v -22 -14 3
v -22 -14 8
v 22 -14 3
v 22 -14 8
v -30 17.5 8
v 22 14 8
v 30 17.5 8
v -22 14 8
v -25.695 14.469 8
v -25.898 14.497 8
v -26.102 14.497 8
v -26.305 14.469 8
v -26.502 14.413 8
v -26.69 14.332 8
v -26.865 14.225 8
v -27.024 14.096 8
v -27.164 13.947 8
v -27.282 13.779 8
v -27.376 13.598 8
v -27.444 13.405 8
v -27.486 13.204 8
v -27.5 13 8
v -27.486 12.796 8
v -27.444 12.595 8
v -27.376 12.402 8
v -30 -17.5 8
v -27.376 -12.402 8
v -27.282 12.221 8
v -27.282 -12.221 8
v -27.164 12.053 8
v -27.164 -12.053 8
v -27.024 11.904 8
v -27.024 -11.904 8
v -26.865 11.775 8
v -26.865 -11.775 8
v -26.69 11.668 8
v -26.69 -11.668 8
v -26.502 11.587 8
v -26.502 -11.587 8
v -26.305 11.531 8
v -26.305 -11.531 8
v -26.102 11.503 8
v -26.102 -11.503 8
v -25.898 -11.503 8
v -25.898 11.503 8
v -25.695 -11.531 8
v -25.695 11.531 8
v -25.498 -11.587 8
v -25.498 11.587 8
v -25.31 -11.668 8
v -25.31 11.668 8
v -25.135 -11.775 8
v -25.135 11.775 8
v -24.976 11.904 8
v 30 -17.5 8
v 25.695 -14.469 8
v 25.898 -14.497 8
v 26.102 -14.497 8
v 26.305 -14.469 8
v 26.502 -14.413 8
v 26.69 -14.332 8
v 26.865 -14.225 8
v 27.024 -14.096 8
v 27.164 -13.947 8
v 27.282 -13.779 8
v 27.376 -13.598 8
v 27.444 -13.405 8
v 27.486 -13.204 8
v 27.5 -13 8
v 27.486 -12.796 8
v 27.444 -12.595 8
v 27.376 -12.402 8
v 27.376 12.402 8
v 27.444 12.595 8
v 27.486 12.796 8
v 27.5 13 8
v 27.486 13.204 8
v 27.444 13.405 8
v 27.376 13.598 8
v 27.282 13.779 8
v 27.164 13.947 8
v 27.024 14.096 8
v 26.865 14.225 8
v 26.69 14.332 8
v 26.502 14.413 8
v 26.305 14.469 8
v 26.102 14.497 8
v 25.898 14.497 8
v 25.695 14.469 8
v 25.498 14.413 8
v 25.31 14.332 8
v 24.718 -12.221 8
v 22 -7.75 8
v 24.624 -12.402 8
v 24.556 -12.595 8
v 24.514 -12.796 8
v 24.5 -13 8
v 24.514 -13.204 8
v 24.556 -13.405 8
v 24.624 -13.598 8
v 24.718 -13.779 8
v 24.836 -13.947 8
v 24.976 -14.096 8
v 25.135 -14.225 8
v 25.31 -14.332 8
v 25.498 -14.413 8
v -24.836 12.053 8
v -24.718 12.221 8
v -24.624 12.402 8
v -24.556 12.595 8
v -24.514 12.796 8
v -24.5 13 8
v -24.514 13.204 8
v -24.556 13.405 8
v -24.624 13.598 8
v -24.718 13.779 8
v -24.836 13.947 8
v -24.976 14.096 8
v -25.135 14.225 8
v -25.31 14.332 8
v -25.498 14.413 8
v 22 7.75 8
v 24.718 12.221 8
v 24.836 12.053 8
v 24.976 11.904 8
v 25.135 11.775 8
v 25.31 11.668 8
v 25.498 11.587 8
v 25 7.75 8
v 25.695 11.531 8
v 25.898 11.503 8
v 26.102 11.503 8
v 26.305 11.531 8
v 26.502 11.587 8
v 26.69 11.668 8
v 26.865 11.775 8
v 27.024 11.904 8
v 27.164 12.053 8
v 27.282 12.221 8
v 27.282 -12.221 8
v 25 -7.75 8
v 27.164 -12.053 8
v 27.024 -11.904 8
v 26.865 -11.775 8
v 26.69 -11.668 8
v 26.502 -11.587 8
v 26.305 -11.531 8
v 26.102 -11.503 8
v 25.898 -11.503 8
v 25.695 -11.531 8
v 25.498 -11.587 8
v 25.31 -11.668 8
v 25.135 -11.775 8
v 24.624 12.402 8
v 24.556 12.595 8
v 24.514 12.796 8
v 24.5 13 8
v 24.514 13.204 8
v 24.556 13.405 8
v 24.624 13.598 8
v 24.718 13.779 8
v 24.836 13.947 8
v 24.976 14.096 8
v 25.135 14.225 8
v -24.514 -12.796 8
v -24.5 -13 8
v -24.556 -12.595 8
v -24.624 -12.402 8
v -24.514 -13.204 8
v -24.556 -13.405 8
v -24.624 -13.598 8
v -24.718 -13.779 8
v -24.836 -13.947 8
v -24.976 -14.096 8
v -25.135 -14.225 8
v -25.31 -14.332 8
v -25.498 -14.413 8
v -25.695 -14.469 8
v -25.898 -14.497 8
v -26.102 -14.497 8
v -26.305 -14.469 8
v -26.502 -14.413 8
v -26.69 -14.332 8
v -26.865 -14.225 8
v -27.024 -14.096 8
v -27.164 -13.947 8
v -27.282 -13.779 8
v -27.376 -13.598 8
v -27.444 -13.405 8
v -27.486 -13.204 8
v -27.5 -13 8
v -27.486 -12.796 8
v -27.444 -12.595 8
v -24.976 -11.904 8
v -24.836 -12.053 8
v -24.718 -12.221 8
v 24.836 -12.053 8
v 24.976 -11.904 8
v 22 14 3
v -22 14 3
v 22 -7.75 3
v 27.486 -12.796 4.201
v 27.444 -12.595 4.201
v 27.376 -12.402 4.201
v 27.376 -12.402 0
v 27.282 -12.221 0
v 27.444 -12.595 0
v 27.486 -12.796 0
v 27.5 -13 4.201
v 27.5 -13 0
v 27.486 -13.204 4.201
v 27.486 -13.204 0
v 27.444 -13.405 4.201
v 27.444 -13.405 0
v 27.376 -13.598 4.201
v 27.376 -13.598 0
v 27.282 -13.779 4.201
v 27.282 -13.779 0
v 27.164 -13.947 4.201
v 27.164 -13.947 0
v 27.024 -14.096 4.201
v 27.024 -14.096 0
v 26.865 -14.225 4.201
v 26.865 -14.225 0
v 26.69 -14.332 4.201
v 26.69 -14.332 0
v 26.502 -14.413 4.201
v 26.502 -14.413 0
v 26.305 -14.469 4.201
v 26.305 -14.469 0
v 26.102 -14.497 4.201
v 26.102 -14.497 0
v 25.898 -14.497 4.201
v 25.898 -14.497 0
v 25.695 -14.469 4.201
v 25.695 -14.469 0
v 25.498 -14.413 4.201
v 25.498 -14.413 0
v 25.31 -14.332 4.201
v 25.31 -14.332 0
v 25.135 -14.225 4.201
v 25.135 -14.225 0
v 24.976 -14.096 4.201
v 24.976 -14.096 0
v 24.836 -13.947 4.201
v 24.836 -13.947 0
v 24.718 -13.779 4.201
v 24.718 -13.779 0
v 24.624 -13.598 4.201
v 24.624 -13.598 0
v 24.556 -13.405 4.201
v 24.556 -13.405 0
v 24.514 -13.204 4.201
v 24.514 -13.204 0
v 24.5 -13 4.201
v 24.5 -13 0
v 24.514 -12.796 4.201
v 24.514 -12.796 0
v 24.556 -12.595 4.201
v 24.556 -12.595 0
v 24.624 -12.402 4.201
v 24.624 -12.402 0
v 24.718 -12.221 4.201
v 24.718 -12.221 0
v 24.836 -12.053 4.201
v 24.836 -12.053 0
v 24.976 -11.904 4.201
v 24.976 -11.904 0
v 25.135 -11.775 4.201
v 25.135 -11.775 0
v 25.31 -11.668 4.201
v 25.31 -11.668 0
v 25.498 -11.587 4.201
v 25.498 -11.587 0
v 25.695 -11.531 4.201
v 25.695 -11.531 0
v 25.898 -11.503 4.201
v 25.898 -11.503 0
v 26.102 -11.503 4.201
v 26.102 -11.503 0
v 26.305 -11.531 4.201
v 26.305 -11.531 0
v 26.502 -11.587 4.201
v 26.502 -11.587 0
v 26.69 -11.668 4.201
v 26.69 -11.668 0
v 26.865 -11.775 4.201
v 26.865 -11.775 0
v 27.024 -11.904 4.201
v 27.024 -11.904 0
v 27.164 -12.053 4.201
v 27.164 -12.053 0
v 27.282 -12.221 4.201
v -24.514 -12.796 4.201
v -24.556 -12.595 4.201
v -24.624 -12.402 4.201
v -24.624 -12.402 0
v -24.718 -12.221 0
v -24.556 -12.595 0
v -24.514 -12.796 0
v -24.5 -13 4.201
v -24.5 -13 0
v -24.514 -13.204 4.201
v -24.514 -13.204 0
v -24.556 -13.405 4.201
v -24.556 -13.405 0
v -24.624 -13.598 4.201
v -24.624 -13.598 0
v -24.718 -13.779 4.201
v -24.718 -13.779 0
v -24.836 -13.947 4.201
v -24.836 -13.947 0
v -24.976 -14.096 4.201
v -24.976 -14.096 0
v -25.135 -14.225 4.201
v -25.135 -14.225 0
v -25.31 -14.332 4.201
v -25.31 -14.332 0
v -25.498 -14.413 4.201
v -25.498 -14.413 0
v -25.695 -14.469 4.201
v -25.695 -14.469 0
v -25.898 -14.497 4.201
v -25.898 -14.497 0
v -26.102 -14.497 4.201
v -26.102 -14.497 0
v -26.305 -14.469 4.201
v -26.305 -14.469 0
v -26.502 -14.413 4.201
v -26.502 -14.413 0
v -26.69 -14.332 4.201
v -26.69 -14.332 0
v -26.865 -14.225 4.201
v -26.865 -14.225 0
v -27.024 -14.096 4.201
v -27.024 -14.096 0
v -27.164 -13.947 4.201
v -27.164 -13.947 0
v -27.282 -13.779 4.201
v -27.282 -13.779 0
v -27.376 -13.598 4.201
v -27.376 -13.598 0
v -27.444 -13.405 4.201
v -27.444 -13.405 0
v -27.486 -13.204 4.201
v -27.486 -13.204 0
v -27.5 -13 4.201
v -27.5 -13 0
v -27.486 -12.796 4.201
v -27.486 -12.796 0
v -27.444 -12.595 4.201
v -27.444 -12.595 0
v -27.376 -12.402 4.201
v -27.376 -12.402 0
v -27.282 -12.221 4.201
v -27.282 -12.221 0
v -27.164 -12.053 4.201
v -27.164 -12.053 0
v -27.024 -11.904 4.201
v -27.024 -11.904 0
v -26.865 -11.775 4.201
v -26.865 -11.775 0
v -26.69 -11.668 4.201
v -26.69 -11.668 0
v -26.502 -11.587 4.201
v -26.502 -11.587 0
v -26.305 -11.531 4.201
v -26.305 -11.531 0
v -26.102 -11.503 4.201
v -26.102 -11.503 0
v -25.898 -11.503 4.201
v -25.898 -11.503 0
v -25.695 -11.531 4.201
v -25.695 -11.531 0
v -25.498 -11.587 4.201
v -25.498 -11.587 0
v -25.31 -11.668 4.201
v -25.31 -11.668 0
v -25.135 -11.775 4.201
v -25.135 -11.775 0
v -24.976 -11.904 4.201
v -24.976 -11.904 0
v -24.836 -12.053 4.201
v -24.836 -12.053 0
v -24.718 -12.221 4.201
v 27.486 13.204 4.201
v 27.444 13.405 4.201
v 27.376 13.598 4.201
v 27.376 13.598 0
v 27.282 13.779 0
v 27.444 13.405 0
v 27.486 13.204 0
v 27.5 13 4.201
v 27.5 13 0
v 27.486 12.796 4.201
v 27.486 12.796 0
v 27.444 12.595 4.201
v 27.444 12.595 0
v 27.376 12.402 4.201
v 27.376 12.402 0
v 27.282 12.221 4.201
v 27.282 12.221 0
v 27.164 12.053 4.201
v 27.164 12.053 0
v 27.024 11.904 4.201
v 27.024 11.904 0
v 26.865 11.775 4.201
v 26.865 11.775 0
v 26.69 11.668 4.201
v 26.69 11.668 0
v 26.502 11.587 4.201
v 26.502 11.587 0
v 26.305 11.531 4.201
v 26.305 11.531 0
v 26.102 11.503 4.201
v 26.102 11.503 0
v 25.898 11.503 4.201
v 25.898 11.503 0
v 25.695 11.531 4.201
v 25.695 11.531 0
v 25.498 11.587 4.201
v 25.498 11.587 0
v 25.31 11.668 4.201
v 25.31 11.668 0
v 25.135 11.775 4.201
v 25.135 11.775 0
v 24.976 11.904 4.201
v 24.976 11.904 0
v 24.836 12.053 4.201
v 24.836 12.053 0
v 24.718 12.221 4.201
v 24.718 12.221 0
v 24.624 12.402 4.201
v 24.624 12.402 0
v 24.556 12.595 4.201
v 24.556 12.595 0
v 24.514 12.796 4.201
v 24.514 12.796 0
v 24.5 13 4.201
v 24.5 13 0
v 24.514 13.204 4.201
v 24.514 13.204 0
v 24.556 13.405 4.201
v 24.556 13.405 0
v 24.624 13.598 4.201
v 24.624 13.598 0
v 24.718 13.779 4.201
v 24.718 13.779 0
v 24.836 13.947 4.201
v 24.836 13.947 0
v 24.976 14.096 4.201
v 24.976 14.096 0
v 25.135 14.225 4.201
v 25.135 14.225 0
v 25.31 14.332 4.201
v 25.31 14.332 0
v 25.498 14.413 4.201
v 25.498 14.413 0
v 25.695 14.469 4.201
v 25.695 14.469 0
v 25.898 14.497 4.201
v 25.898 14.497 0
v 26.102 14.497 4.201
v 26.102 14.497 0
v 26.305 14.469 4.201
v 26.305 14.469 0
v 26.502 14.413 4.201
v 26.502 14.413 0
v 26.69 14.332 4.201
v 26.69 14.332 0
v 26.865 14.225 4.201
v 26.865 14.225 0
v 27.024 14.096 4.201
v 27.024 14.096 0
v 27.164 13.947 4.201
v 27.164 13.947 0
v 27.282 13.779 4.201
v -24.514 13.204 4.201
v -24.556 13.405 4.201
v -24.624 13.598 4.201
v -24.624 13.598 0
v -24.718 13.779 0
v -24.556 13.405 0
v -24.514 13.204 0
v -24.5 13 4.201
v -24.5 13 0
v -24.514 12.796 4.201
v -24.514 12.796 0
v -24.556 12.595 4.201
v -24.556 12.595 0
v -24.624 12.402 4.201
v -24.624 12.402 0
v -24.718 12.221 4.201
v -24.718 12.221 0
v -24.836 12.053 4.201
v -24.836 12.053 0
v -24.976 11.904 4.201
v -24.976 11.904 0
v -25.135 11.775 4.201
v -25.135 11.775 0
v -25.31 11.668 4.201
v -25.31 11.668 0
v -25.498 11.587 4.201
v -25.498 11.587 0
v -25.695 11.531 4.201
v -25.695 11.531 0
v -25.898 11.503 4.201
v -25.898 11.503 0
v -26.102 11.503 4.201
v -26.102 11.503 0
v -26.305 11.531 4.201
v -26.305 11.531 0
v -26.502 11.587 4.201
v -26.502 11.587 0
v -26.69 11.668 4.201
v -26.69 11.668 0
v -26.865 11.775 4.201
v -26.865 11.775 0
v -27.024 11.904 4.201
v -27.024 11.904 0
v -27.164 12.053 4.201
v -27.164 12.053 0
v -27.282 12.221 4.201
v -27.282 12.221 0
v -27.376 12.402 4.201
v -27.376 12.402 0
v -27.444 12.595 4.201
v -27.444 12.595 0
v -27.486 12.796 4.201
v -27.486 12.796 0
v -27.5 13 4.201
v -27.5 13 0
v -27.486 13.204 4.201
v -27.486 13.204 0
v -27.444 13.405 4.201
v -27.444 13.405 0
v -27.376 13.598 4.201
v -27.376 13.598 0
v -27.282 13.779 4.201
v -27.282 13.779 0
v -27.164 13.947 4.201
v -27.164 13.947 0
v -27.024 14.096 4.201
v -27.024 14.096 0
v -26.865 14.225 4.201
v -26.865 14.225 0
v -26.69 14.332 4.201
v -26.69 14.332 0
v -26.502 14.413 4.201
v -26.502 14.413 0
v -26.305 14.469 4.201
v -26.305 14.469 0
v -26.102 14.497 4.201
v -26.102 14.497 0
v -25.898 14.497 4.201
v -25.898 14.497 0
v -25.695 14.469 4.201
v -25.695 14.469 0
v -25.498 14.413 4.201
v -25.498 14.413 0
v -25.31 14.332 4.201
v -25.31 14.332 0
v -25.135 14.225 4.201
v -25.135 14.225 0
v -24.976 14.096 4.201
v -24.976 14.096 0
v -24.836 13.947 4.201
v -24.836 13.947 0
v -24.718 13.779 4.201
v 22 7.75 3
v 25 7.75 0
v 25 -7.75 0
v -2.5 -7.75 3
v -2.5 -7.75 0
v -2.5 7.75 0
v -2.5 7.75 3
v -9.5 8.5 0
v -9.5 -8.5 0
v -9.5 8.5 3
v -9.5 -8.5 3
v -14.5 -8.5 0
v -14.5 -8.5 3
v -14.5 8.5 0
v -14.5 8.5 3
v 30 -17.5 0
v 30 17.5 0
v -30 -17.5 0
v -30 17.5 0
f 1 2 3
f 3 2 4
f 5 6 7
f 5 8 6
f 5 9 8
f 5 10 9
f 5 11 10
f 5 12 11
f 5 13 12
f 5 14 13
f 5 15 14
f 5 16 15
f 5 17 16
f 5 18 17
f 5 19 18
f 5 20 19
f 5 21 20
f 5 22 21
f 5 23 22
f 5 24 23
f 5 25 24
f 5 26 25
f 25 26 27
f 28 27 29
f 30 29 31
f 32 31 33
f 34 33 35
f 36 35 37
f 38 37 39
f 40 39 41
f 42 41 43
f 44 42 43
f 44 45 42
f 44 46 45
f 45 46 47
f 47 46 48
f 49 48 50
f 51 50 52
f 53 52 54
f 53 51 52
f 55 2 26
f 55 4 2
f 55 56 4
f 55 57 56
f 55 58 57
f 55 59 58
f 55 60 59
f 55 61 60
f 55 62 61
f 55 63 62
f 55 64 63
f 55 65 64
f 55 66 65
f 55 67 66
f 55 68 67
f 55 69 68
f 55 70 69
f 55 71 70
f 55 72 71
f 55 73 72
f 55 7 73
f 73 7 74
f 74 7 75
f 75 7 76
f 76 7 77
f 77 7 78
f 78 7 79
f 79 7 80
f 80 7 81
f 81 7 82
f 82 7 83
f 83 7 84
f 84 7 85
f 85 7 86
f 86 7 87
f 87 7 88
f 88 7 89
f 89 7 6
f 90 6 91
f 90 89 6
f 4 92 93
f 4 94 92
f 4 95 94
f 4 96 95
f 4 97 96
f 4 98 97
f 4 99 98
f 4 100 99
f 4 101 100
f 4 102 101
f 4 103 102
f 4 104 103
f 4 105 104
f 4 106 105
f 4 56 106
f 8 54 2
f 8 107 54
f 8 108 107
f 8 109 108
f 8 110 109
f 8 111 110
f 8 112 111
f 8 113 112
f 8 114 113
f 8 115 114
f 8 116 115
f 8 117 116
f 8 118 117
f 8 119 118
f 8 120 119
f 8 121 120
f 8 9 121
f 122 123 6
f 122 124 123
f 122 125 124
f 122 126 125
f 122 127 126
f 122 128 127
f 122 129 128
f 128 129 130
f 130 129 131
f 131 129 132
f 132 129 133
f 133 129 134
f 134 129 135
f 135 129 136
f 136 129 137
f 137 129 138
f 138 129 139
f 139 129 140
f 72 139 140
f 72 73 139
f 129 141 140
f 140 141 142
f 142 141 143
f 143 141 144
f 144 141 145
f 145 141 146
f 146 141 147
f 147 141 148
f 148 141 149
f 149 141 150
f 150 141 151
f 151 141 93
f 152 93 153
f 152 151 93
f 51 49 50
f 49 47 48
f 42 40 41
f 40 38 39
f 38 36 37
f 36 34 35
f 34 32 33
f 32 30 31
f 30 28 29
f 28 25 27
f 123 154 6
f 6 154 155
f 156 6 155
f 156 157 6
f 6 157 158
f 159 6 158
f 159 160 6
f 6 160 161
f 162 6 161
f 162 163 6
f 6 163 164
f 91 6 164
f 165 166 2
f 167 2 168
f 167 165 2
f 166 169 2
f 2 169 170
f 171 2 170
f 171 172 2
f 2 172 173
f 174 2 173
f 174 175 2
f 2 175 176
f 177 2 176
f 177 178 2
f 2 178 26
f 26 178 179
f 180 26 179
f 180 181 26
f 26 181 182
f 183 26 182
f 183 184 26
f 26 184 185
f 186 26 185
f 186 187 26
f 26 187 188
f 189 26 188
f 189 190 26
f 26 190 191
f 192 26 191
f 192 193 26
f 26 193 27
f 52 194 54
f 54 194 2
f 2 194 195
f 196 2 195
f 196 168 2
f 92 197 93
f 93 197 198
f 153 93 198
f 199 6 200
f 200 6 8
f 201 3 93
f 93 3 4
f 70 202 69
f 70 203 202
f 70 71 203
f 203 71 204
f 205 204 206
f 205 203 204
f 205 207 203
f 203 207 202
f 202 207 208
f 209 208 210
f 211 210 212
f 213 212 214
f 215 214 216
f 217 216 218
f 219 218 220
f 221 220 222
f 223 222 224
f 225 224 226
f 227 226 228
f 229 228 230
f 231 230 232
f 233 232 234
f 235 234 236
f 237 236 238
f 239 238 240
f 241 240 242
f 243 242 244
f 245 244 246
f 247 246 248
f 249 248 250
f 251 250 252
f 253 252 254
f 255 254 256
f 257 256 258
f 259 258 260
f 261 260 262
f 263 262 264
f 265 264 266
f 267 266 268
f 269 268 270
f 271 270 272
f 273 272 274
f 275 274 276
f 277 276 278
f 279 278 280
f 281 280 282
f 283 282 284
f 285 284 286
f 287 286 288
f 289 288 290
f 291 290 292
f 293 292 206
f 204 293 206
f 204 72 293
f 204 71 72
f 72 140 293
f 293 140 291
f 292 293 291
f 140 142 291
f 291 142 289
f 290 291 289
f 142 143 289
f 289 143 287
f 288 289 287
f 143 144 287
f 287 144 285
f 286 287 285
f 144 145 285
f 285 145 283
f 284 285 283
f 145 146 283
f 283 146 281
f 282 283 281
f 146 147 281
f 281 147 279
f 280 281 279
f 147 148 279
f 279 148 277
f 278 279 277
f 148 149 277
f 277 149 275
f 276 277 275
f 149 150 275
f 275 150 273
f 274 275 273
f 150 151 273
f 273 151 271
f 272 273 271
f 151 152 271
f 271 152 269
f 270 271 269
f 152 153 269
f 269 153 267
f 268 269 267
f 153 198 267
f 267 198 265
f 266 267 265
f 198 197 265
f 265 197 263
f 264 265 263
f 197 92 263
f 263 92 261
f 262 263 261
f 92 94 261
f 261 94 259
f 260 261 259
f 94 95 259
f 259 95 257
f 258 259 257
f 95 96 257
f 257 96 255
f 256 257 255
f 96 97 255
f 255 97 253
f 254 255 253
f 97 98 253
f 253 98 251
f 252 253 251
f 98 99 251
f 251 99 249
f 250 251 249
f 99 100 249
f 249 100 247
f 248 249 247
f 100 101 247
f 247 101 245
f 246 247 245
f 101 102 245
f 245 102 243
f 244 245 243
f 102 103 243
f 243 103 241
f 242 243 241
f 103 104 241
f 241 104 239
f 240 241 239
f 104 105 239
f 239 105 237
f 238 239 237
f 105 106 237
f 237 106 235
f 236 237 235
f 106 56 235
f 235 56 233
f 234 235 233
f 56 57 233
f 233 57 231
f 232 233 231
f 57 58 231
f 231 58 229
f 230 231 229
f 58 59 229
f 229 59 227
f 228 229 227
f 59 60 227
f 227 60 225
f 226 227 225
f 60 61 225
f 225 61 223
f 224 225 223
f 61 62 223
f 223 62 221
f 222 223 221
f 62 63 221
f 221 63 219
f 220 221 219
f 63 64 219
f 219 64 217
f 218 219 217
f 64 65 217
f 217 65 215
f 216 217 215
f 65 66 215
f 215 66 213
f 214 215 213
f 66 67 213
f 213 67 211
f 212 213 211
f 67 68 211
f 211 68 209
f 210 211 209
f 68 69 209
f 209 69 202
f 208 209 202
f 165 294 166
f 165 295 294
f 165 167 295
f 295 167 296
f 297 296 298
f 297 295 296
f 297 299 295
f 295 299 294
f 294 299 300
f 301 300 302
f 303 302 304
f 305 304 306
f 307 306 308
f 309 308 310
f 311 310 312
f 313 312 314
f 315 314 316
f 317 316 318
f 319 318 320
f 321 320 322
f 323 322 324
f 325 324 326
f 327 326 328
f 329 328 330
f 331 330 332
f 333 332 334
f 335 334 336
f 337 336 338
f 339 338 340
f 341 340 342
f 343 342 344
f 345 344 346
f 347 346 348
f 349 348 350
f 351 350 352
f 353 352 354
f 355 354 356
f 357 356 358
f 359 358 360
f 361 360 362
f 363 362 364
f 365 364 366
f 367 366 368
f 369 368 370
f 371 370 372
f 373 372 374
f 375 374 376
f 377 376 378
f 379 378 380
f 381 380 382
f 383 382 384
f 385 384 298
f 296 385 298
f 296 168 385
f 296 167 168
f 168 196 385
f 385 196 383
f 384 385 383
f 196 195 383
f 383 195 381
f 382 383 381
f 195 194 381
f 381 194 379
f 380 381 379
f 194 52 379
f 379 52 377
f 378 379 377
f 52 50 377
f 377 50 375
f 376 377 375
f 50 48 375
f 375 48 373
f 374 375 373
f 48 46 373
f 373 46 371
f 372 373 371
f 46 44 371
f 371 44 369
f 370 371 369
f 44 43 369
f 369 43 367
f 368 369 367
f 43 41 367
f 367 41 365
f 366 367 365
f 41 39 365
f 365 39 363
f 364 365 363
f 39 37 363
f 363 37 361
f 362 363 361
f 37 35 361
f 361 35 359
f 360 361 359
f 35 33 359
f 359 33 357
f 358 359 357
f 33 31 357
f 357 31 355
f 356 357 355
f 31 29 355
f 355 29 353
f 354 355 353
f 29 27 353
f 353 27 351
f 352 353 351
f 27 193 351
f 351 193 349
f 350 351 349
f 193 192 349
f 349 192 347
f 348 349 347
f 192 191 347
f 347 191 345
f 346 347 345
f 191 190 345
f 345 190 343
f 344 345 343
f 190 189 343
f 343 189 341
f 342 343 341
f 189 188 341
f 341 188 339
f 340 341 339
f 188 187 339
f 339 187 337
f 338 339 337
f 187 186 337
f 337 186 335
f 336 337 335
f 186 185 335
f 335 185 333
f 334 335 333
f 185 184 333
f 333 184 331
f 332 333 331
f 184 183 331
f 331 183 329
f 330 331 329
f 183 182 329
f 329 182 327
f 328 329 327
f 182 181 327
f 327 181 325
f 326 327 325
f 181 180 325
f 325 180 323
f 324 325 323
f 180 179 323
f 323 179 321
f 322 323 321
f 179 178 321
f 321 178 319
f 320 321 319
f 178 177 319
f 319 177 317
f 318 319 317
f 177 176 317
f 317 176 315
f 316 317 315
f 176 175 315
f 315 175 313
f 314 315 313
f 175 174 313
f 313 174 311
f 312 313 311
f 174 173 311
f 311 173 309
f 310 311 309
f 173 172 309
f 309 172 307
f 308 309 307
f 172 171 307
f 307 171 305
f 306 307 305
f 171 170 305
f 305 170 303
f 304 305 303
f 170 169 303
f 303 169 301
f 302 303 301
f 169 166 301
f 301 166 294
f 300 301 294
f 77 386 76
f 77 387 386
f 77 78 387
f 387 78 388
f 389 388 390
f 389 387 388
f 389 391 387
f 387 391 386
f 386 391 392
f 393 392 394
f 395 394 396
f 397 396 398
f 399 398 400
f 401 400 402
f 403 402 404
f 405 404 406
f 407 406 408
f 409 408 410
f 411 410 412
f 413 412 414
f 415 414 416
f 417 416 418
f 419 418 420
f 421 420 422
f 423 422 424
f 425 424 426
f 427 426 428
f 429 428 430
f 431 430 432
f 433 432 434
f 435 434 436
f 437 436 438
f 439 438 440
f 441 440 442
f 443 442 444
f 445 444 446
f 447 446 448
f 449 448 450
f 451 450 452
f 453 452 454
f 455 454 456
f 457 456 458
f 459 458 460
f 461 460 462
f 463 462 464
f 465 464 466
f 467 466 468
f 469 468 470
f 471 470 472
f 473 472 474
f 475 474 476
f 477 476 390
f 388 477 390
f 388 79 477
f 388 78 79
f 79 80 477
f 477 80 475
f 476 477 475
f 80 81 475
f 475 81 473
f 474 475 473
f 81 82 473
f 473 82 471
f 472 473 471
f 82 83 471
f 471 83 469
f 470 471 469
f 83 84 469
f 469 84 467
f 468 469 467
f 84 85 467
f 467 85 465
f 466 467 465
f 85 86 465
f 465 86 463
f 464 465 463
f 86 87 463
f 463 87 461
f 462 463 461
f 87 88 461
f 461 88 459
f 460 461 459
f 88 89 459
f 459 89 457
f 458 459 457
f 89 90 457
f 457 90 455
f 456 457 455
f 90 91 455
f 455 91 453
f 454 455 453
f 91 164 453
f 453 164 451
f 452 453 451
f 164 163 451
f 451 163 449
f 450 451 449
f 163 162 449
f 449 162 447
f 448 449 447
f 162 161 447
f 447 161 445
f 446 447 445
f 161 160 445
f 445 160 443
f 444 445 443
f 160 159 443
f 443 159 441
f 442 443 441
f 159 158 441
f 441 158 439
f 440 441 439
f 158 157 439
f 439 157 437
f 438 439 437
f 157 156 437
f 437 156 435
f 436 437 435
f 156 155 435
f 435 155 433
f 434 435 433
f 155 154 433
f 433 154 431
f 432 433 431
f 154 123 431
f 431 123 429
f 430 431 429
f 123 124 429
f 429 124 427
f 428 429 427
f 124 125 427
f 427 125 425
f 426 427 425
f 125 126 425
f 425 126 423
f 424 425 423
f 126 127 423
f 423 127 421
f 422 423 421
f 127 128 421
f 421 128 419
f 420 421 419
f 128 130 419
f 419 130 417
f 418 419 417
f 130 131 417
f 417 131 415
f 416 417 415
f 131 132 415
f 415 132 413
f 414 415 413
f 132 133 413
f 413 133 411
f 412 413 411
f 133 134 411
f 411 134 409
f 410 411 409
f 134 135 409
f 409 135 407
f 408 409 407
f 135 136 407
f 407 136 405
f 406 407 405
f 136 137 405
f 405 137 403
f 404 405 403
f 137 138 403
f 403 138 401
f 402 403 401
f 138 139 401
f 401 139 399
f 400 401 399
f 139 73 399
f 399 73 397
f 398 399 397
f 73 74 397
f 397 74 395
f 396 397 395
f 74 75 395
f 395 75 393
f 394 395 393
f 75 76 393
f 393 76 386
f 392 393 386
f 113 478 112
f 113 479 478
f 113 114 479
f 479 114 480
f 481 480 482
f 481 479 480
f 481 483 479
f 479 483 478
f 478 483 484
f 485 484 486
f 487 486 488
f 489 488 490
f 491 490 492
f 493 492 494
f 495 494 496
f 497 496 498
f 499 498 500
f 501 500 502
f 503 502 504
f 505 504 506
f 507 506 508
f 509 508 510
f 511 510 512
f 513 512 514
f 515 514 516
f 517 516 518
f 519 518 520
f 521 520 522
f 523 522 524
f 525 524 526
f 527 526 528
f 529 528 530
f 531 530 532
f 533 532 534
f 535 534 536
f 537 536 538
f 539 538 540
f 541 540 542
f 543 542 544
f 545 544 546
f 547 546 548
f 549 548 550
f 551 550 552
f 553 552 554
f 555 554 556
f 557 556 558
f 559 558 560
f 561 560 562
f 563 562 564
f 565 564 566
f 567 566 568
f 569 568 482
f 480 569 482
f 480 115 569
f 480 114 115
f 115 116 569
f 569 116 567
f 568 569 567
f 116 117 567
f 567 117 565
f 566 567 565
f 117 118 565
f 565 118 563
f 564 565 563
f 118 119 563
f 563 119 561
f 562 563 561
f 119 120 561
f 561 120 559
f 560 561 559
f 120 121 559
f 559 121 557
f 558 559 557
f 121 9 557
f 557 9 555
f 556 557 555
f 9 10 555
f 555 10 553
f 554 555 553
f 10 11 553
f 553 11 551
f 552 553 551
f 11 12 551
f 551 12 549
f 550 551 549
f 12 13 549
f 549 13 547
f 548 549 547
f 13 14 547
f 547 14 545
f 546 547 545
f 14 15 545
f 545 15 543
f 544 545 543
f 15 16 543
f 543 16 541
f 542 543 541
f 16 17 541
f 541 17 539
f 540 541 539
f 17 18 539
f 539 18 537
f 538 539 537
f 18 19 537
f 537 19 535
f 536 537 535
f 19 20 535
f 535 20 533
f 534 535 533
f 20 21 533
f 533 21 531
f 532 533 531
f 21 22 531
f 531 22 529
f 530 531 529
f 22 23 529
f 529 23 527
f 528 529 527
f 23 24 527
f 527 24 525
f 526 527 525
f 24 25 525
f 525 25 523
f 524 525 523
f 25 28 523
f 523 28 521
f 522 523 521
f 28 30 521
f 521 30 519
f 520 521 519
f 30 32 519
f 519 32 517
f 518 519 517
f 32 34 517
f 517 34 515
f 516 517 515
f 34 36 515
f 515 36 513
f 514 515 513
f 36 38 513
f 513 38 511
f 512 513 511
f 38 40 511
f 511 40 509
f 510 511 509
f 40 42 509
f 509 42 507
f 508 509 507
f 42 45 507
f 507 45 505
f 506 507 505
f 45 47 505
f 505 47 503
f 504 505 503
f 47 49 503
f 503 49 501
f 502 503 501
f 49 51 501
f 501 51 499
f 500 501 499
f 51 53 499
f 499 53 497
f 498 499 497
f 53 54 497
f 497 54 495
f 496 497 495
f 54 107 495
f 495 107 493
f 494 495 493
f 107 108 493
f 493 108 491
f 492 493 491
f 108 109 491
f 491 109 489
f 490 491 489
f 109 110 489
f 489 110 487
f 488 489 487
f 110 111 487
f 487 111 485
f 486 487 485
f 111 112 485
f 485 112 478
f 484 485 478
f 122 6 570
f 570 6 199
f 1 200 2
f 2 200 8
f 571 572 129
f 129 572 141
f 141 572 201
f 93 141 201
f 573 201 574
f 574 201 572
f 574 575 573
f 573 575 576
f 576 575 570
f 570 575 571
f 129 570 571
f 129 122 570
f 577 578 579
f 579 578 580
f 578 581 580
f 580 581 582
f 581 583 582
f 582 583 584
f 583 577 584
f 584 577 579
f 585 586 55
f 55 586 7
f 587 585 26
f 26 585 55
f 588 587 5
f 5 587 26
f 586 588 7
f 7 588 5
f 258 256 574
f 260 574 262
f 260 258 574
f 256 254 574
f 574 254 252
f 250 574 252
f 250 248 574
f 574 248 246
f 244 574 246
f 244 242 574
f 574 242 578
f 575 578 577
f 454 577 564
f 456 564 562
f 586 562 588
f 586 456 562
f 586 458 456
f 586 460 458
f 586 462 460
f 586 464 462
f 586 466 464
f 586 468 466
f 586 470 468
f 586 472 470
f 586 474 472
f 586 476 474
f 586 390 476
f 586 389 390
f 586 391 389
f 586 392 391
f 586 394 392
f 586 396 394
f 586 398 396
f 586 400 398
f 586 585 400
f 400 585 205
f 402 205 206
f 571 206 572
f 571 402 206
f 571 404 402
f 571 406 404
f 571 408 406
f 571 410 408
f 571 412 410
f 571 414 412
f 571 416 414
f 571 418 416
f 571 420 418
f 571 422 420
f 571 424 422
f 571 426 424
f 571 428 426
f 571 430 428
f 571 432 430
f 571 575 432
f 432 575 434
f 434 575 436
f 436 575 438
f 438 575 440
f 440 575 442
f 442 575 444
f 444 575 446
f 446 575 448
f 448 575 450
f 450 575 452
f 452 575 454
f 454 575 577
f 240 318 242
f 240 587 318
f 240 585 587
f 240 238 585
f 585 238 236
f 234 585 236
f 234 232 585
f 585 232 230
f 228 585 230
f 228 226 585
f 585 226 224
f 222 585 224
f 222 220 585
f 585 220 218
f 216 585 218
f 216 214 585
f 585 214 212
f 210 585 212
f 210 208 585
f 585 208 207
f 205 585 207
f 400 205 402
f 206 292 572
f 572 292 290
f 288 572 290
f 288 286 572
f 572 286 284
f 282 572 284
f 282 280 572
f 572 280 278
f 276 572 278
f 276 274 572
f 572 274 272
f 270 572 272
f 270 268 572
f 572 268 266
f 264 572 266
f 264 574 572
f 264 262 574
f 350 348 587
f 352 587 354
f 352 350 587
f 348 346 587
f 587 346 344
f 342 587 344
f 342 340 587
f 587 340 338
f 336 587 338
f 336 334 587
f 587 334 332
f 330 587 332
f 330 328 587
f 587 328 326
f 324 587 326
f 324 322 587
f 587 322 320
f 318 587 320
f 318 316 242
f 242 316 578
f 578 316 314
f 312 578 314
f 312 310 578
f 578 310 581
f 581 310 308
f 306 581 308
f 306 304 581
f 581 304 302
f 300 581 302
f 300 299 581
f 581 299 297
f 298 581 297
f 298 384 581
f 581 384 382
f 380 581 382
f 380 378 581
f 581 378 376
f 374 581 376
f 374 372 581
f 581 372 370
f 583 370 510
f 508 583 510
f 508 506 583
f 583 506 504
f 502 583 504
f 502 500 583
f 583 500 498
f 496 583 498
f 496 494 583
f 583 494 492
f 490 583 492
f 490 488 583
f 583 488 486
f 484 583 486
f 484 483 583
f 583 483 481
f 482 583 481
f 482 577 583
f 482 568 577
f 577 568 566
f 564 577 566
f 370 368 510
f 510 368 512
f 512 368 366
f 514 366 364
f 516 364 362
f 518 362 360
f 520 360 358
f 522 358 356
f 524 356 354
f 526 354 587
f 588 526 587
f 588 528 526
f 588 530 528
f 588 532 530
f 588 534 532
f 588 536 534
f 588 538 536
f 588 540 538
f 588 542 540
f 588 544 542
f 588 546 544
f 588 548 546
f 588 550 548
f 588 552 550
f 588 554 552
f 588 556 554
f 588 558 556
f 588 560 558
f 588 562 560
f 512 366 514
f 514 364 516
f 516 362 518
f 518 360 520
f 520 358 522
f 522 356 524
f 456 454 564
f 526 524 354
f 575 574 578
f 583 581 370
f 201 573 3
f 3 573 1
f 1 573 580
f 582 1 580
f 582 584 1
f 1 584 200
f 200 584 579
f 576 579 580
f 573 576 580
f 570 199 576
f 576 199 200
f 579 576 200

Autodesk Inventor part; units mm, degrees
ref_plane "YZ Plane" through (0, 0, 0) normal (1, 0, 0) x (0, 1, 0)
ref_plane "XZ Plane" through (0, 0, 0) normal (0, 1, 0) x (-1, 0, 0)
ref_plane "XY Plane" through (0, 0, 0) normal (0, 0, 1) x (1, 0, 0)
sketch "Sketch1" plane through (0, 0, 0) normal (0, 0, 1) x (1, 0, 0)
  line L0 (-30, 17.5) -> (30, 17.5)
  line L1 (30, 17.5) -> (30, -17.5)
  line L2 (30, -17.5) -> (-30, -17.5)
  line L3 (-30, -17.5) -> (-30, 17.5)
  line L4 (-2.5, 7.75) -> (25, 7.75)
  line L5 (25, 7.75) -> (25, -7.75)
  line L6 (25, -7.75) -> (-2.5, -7.75)
  line L7 (-2.5, -7.75) -> (-2.5, 7.75)
  line L8 (-14.5, 8.5) -> (-9.5, 8.5)
  line L9 (-9.5, 8.5) -> (-9.5, -8.5)
  line L10 (-9.5, -8.5) -> (-14.5, -8.5)
  line L11 (-14.5, -8.5) -> (-14.5, 8.5)
  point P0 (0, 0)
  dimension "length" = 60
  dimension "width" = 35
  dimension "d2" = 17.5
  dimension "d3" = 30
  dimension "d4" = 27.5
  dimension "d5" = 15.5
  dimension "d6" = 7.75
  dimension "d7" = 5
  dimension "d8" = 5
  dimension "d9" = 17
  dimension "d10" = 8.5
  dimension "d11" = 7
extrude "Extrusion1" add sketch "Sketch1" along normal blind 3
sketch "Sketch2" plane through (0, 0, 3) normal (0, 0, 1) x (1, 0, 0)
  line L0 (-22, 9) -> (22, 9)
  line L1 (22, 9) -> (22, -9)
  line L2 (22, -9) -> (-22, -9)
  line L3 (-22, -9) -> (-22, 9)
  line L4 (25, 7.75) -> (25, -7.75) projected
  line L5 (25, -7.75) -> (-2.5, -7.75) projected
  line L6 (-2.5, -7.75) -> (-2.5, 7.75) projected
  line L7 (-2.5, 7.75) -> (25, 7.75) projected
  line L8 (-9.5, 8.5) -> (-9.5, -8.5) projected
  line L9 (-9.5, -8.5) -> (-14.5, -8.5) projected
  line L10 (-14.5, -8.5) -> (-14.5, 8.5) projected
  line L11 (-14.5, 8.5) -> (-9.5, 8.5) projected
  line L12 (30, 17.5) -> (-30, 17.5) projected
  line L13 (-30, 17.5) -> (-30, -17.5) projected
  line L14 (-30, -17.5) -> (30, -17.5) projected
  line L15 (30, -17.5) -> (30, 17.5) projected
  point P0 (0, 0)
  dimension "d14" = 44
  dimension "d15" = 18
  dimension "d16" = 9
extrude "Extrusion2" add sketch "Sketch2" along normal blind 5 contours L7 L4 L5 L1 | L15 L14 L13 L12
hole "Hole1" at (-26, 13, 0) direction (0, 0, 1) diameter 3 end through all
pattern_linear "Rectangular Pattern1" count 2 spacing 52 along (1, 0, 0) count 2 spacing 26 along (0, -1, 0) of "Hole1"
sketch "Sketch3" plane through (0, 0, 3) normal (0, 0, -1) x (-1, 0, 0)
  line L0 (-25, -7.75) -> (-22, -7.75) projected
  line L1 (-22, -7.75) -> (-22, 7.75) projected
  line L2 (-22, 7.75) -> (-25, 7.75) projected
  line L3 (-25, 7.75) -> (-25, -7.75) projected
  point P0 (0, 0)
extrude "Extrusion3" cut sketch "Sketch3" against normal through all
sketch "Sketch4" plane through (-22, 9, 3) normal (0, -1, 0) x (1, 0, 0)
  line L0 (44, 0) -> (0, 0) projected
  line L1 (44, 0) -> (44, 5) projected
  line L2 (0, 5) -> (44, 5) projected
  line L3 (0, 0) -> (0, 5) projected
  point P0 (22, -3)
extrude "Extrusion4" cut sketch "Sketch4" against normal blind 5
sketch "Sketch5" plane through (-22, -9, 3) normal (0, 1, 0) x (1, 0, 0)
  line L0 (0, 0) -> (44, 0) projected
  line L1 (0, 0) -> (0, -5) projected
  line L2 (44, -5) -> (0, -5) projected
  line L3 (44, 0) -> (44, -5) projected
  point P0 (22, 3)
extrude "Extrusion5" cut sketch "Sketch5" against normal blind 5
equation "\"d2\" = 0.5 * width"
equation "\"d3\" = 0.5 * length"
equation "\"d6\" = 0.5 * d5"
equation "\"d10\" = 0.5 * d9"
equation "\"d16\" = 0.5 * d15"
properties part number "suport releu"
